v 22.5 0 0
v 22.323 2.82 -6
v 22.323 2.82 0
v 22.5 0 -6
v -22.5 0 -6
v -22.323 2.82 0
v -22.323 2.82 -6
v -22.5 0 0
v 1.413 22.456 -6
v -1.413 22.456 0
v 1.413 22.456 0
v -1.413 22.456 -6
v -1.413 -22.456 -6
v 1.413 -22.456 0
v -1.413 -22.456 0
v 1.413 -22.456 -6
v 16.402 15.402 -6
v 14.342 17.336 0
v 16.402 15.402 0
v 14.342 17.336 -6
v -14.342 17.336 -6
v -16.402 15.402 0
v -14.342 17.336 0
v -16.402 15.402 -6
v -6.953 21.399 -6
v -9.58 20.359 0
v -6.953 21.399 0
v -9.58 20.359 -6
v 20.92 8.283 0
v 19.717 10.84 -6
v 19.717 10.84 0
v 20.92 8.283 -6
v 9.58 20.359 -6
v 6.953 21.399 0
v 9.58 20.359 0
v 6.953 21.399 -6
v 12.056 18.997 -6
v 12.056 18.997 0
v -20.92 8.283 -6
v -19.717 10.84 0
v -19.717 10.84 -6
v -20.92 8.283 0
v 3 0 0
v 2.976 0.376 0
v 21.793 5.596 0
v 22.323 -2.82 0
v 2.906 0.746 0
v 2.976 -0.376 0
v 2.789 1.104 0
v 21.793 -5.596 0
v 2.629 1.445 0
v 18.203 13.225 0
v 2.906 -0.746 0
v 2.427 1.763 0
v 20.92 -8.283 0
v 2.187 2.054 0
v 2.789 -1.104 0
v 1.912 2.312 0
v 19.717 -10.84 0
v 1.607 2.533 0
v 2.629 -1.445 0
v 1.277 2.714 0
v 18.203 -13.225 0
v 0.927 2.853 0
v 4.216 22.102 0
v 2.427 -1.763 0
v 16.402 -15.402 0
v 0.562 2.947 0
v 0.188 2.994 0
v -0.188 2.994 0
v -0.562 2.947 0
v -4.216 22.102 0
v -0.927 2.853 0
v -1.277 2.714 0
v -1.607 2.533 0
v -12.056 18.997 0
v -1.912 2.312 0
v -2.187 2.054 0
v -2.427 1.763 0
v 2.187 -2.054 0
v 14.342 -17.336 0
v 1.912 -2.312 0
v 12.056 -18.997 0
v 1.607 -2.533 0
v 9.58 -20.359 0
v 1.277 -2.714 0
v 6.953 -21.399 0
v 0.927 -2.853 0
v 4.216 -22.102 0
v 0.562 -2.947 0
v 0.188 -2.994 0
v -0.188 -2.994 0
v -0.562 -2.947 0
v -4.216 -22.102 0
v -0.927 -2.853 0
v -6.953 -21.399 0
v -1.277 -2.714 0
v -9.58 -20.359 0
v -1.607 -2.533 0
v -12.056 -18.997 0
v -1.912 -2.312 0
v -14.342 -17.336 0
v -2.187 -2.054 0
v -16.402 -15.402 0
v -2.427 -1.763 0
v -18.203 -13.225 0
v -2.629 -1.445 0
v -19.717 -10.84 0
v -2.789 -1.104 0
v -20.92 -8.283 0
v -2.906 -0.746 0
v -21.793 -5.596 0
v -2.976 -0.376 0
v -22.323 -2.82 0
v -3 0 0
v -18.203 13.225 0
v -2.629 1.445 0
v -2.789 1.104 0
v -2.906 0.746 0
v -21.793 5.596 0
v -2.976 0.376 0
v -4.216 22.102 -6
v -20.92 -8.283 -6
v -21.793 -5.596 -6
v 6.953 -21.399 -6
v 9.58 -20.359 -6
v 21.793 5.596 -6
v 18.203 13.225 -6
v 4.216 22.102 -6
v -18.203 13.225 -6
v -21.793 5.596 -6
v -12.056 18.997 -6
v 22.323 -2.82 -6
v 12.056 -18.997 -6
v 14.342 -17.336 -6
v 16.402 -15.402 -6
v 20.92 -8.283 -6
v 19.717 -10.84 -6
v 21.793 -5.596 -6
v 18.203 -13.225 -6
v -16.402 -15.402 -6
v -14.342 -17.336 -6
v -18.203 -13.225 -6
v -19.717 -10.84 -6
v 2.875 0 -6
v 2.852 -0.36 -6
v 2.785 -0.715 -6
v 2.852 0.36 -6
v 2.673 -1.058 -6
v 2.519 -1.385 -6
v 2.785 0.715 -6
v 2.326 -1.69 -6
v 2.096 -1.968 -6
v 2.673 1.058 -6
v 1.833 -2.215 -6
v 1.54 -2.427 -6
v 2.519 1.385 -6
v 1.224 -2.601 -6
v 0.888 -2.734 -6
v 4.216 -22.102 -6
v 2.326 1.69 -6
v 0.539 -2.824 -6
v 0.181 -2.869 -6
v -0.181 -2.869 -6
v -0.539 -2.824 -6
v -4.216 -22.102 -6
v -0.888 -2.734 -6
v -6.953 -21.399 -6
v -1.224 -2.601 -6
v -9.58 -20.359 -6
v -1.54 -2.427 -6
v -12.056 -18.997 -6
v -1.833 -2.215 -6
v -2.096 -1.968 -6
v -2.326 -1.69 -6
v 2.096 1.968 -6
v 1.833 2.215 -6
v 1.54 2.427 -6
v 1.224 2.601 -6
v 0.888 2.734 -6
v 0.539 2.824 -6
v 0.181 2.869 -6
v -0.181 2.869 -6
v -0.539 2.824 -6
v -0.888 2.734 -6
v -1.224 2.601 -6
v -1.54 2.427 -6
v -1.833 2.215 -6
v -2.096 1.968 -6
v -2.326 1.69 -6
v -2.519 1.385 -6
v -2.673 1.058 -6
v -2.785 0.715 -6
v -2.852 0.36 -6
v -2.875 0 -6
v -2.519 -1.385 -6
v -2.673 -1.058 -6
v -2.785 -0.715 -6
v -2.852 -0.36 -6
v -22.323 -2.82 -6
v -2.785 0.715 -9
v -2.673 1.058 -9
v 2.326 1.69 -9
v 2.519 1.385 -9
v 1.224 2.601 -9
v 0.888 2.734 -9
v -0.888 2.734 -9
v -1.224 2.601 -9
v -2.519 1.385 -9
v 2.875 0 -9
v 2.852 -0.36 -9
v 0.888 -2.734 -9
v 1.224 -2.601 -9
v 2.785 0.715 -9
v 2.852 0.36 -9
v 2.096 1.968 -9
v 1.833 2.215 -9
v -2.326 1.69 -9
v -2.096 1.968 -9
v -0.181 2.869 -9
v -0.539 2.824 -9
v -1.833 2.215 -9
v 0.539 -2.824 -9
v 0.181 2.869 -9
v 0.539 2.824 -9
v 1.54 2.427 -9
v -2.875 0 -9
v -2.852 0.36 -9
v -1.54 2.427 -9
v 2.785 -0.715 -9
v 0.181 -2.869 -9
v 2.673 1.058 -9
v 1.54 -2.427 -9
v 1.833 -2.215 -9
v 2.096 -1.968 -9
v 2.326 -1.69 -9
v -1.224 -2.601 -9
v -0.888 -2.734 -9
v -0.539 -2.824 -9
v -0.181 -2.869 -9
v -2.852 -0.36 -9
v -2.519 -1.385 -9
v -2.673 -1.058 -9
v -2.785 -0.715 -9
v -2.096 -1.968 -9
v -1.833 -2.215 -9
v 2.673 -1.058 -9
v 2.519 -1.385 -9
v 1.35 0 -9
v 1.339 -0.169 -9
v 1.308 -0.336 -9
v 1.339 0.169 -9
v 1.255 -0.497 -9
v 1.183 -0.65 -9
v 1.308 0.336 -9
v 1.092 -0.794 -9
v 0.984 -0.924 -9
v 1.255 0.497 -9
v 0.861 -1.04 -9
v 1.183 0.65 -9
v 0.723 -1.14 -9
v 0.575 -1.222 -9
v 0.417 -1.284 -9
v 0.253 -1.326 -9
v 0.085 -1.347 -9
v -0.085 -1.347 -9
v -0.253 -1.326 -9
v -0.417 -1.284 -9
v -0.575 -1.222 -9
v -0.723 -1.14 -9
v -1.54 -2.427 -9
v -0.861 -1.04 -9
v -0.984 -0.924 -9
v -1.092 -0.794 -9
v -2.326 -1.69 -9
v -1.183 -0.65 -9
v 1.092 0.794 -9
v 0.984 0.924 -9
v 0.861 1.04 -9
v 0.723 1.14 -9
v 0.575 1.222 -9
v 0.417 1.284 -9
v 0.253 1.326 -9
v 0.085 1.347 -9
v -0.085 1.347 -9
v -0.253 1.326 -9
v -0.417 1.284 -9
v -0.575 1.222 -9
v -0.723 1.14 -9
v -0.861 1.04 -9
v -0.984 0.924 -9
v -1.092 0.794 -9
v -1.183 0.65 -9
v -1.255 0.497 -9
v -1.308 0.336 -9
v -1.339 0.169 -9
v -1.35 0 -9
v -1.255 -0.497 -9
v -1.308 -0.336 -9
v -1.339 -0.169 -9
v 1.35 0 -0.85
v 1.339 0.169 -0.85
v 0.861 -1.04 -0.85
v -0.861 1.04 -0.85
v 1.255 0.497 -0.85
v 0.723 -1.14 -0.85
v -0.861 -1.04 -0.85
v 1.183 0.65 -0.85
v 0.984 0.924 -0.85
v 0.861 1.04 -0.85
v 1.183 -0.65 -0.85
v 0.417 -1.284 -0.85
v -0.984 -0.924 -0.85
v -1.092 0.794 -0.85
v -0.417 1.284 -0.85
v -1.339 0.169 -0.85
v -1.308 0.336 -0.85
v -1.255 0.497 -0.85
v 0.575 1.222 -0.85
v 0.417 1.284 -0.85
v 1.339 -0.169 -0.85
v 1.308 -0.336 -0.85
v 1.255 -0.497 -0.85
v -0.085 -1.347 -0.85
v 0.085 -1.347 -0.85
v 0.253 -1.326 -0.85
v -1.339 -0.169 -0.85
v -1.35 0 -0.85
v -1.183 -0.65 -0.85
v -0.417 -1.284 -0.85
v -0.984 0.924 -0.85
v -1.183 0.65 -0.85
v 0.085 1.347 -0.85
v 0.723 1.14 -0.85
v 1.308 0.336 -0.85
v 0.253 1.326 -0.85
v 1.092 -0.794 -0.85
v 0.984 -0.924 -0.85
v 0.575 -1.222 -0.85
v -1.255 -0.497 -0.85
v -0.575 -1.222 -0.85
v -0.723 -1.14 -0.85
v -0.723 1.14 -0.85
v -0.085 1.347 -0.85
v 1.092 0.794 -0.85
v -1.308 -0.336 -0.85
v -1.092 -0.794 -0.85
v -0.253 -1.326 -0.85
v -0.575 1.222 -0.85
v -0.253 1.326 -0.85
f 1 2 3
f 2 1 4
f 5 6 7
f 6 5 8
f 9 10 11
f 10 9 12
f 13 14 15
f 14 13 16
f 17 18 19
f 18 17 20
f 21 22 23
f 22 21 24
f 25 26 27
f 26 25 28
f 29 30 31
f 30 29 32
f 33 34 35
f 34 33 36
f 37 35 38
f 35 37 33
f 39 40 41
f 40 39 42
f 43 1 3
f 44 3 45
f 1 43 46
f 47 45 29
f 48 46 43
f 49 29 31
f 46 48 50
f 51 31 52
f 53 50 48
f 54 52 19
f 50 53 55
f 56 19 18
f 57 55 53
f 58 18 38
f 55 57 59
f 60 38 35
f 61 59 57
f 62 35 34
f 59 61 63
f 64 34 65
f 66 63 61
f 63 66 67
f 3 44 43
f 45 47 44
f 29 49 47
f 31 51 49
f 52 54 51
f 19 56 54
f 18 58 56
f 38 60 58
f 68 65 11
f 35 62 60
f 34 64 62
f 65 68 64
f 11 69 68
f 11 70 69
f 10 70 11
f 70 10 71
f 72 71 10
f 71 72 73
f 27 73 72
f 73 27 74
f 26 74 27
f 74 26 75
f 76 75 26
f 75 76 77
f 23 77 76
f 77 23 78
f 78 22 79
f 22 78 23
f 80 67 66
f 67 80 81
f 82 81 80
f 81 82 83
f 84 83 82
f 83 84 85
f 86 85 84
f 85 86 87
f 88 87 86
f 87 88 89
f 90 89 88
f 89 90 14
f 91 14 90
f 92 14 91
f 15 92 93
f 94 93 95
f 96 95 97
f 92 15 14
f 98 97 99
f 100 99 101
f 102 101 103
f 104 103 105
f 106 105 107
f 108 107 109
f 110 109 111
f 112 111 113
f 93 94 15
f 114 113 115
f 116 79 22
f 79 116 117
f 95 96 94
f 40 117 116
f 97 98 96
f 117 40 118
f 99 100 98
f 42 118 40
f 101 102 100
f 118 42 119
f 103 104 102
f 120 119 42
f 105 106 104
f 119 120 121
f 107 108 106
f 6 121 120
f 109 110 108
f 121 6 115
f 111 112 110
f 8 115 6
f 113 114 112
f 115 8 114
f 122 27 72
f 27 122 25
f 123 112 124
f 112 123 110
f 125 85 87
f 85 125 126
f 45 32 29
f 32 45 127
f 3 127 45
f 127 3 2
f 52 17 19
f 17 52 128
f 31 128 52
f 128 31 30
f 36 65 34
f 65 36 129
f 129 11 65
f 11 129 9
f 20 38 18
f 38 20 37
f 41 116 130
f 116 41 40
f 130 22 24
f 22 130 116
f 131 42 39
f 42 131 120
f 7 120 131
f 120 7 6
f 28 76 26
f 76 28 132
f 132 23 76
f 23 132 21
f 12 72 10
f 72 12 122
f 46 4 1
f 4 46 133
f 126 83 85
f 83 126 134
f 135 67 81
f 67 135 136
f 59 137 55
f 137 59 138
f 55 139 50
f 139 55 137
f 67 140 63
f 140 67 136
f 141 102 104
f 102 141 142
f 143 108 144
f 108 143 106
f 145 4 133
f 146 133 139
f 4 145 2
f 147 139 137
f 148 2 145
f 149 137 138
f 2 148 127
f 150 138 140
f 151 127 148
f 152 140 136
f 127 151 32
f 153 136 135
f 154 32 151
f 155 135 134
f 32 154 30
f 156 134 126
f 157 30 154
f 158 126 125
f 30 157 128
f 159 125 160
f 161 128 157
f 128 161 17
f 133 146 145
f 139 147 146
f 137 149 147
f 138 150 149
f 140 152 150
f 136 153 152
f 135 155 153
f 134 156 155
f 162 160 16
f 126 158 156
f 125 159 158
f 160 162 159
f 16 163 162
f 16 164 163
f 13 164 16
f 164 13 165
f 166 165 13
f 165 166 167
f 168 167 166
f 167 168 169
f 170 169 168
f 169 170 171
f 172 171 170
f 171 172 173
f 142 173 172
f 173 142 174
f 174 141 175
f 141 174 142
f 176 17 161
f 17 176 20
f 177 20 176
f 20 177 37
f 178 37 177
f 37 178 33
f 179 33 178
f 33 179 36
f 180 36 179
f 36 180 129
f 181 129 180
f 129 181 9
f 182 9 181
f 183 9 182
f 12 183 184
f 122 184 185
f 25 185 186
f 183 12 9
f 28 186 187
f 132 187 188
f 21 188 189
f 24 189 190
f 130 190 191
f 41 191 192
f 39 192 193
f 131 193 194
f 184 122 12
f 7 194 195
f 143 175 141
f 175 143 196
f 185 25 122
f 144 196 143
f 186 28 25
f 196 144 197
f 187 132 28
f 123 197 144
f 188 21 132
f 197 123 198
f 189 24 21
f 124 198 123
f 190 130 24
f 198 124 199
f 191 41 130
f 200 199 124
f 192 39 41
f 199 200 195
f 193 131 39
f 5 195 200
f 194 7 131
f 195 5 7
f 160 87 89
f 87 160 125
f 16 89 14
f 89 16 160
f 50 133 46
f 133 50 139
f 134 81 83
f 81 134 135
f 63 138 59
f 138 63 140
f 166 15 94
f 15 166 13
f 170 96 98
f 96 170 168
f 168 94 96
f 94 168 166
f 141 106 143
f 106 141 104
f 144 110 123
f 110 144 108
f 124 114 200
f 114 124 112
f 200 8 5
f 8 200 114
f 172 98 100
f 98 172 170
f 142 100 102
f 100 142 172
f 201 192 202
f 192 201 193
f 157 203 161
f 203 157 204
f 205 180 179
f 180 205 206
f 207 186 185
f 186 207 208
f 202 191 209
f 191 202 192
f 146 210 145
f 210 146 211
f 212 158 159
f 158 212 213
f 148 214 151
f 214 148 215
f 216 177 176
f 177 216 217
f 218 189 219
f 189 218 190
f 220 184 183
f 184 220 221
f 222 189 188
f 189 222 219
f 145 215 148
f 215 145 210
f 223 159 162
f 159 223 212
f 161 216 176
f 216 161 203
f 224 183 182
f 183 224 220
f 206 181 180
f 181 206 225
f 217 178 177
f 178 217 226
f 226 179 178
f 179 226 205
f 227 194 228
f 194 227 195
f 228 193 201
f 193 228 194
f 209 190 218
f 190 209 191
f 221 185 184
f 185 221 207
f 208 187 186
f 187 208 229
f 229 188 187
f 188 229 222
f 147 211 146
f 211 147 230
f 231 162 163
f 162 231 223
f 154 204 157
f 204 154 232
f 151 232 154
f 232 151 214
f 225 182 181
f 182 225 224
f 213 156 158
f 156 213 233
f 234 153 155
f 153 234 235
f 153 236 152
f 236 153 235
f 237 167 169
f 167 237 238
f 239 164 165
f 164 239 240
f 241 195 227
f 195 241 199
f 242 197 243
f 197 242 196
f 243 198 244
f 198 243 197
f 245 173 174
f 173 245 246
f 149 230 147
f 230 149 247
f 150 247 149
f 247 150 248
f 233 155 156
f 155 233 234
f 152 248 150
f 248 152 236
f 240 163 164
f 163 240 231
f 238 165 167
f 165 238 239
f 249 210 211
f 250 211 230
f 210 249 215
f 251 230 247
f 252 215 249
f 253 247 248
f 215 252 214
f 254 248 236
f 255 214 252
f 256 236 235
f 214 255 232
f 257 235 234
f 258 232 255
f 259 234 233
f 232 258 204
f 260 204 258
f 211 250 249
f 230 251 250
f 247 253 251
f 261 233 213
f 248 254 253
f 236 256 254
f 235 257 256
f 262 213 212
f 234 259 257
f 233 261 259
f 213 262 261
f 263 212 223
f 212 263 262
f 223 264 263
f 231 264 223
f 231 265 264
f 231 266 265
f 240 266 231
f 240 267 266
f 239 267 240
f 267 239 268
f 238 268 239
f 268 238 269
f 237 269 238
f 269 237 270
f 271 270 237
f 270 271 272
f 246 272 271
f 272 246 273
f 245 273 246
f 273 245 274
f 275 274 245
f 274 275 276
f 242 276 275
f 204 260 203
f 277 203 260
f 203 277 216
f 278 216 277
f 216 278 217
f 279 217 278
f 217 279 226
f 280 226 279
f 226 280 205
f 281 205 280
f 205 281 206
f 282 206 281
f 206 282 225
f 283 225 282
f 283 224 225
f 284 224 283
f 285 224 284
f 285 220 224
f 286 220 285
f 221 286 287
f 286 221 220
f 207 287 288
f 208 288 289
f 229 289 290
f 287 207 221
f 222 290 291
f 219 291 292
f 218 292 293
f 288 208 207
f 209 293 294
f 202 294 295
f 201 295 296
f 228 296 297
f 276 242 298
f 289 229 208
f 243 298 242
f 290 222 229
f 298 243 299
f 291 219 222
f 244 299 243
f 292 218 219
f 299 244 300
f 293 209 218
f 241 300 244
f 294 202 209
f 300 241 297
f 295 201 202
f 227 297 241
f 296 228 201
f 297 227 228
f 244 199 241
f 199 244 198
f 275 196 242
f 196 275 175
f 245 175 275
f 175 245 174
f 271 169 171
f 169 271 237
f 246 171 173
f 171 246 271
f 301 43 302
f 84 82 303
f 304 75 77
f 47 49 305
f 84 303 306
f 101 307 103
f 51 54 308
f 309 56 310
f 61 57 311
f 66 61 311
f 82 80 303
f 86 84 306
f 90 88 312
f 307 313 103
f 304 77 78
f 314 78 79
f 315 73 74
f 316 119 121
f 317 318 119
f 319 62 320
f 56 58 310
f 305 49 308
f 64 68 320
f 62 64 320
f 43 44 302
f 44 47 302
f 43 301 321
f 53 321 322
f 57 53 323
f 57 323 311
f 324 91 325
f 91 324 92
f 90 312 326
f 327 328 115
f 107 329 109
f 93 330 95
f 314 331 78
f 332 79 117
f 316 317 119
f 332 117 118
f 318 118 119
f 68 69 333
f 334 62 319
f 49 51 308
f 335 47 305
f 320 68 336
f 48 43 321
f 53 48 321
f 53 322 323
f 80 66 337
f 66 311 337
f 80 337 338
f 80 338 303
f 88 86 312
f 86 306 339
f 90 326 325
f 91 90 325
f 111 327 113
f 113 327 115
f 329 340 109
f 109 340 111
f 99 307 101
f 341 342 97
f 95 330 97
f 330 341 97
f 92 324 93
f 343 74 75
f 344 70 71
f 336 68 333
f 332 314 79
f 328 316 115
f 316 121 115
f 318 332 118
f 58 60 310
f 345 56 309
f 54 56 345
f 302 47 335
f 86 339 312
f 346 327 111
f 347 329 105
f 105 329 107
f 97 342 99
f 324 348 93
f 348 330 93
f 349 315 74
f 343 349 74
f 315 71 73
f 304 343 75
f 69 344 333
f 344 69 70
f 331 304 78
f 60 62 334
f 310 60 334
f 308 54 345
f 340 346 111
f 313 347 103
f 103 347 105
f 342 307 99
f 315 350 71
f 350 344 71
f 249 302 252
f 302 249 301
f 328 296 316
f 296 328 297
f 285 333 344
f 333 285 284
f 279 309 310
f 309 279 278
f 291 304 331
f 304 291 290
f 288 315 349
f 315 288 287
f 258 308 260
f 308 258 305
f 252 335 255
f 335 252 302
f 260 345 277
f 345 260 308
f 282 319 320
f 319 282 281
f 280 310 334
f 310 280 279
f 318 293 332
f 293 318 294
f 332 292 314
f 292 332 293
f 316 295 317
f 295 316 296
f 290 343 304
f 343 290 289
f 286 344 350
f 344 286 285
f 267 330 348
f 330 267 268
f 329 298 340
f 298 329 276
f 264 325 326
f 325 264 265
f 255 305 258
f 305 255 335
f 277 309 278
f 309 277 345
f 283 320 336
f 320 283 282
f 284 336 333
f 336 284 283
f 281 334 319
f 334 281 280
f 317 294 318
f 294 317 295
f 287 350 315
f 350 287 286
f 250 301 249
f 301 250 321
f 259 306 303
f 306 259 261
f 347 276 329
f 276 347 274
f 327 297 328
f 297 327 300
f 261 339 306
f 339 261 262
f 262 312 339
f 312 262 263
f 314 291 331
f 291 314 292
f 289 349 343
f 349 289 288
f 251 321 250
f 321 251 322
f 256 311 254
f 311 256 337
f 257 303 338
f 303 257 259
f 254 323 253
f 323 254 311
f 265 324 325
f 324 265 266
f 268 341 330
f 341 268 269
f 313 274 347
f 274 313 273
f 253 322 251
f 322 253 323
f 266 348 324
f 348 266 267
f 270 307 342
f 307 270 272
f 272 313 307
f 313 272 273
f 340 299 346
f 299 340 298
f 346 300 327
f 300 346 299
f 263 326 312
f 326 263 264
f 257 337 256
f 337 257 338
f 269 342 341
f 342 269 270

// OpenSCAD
$fn = 50;


difference() {
	union() {
		translate(v = [0, 0, -6.0000000000]) {
			cylinder(h = 6, r = 22.5000000000);
		}
		translate(v = [0, 0, -9.0000000000]) {
			cylinder(h = 9, r = 2.8750000000);
		}
	}
	union() {
		translate(v = [0, 0, 0]) {
			rotate(a = [0, 0, 0]) {
				difference() {
					union() {
						translate(v = [0, 0, -9.0000000000]) {
							cylinder(h = 9, r = 1.0000000000);
						}
						translate(v = [0, 0, -0.8500000000]) {
							cylinder(h = 0.8500000000, r1 = 1.3500000000, r2 = 3.0000000000);
						}
						translate(v = [0, 0, -9.0000000000]) {
							cylinder(h = 9, r = 1.3500000000);
						}
						translate(v = [0, 0, -9.0000000000]) {
							cylinder(h = 9, r = 1.0000000000);
						}
					}
					union();
				}
			}
		}
	}
}
